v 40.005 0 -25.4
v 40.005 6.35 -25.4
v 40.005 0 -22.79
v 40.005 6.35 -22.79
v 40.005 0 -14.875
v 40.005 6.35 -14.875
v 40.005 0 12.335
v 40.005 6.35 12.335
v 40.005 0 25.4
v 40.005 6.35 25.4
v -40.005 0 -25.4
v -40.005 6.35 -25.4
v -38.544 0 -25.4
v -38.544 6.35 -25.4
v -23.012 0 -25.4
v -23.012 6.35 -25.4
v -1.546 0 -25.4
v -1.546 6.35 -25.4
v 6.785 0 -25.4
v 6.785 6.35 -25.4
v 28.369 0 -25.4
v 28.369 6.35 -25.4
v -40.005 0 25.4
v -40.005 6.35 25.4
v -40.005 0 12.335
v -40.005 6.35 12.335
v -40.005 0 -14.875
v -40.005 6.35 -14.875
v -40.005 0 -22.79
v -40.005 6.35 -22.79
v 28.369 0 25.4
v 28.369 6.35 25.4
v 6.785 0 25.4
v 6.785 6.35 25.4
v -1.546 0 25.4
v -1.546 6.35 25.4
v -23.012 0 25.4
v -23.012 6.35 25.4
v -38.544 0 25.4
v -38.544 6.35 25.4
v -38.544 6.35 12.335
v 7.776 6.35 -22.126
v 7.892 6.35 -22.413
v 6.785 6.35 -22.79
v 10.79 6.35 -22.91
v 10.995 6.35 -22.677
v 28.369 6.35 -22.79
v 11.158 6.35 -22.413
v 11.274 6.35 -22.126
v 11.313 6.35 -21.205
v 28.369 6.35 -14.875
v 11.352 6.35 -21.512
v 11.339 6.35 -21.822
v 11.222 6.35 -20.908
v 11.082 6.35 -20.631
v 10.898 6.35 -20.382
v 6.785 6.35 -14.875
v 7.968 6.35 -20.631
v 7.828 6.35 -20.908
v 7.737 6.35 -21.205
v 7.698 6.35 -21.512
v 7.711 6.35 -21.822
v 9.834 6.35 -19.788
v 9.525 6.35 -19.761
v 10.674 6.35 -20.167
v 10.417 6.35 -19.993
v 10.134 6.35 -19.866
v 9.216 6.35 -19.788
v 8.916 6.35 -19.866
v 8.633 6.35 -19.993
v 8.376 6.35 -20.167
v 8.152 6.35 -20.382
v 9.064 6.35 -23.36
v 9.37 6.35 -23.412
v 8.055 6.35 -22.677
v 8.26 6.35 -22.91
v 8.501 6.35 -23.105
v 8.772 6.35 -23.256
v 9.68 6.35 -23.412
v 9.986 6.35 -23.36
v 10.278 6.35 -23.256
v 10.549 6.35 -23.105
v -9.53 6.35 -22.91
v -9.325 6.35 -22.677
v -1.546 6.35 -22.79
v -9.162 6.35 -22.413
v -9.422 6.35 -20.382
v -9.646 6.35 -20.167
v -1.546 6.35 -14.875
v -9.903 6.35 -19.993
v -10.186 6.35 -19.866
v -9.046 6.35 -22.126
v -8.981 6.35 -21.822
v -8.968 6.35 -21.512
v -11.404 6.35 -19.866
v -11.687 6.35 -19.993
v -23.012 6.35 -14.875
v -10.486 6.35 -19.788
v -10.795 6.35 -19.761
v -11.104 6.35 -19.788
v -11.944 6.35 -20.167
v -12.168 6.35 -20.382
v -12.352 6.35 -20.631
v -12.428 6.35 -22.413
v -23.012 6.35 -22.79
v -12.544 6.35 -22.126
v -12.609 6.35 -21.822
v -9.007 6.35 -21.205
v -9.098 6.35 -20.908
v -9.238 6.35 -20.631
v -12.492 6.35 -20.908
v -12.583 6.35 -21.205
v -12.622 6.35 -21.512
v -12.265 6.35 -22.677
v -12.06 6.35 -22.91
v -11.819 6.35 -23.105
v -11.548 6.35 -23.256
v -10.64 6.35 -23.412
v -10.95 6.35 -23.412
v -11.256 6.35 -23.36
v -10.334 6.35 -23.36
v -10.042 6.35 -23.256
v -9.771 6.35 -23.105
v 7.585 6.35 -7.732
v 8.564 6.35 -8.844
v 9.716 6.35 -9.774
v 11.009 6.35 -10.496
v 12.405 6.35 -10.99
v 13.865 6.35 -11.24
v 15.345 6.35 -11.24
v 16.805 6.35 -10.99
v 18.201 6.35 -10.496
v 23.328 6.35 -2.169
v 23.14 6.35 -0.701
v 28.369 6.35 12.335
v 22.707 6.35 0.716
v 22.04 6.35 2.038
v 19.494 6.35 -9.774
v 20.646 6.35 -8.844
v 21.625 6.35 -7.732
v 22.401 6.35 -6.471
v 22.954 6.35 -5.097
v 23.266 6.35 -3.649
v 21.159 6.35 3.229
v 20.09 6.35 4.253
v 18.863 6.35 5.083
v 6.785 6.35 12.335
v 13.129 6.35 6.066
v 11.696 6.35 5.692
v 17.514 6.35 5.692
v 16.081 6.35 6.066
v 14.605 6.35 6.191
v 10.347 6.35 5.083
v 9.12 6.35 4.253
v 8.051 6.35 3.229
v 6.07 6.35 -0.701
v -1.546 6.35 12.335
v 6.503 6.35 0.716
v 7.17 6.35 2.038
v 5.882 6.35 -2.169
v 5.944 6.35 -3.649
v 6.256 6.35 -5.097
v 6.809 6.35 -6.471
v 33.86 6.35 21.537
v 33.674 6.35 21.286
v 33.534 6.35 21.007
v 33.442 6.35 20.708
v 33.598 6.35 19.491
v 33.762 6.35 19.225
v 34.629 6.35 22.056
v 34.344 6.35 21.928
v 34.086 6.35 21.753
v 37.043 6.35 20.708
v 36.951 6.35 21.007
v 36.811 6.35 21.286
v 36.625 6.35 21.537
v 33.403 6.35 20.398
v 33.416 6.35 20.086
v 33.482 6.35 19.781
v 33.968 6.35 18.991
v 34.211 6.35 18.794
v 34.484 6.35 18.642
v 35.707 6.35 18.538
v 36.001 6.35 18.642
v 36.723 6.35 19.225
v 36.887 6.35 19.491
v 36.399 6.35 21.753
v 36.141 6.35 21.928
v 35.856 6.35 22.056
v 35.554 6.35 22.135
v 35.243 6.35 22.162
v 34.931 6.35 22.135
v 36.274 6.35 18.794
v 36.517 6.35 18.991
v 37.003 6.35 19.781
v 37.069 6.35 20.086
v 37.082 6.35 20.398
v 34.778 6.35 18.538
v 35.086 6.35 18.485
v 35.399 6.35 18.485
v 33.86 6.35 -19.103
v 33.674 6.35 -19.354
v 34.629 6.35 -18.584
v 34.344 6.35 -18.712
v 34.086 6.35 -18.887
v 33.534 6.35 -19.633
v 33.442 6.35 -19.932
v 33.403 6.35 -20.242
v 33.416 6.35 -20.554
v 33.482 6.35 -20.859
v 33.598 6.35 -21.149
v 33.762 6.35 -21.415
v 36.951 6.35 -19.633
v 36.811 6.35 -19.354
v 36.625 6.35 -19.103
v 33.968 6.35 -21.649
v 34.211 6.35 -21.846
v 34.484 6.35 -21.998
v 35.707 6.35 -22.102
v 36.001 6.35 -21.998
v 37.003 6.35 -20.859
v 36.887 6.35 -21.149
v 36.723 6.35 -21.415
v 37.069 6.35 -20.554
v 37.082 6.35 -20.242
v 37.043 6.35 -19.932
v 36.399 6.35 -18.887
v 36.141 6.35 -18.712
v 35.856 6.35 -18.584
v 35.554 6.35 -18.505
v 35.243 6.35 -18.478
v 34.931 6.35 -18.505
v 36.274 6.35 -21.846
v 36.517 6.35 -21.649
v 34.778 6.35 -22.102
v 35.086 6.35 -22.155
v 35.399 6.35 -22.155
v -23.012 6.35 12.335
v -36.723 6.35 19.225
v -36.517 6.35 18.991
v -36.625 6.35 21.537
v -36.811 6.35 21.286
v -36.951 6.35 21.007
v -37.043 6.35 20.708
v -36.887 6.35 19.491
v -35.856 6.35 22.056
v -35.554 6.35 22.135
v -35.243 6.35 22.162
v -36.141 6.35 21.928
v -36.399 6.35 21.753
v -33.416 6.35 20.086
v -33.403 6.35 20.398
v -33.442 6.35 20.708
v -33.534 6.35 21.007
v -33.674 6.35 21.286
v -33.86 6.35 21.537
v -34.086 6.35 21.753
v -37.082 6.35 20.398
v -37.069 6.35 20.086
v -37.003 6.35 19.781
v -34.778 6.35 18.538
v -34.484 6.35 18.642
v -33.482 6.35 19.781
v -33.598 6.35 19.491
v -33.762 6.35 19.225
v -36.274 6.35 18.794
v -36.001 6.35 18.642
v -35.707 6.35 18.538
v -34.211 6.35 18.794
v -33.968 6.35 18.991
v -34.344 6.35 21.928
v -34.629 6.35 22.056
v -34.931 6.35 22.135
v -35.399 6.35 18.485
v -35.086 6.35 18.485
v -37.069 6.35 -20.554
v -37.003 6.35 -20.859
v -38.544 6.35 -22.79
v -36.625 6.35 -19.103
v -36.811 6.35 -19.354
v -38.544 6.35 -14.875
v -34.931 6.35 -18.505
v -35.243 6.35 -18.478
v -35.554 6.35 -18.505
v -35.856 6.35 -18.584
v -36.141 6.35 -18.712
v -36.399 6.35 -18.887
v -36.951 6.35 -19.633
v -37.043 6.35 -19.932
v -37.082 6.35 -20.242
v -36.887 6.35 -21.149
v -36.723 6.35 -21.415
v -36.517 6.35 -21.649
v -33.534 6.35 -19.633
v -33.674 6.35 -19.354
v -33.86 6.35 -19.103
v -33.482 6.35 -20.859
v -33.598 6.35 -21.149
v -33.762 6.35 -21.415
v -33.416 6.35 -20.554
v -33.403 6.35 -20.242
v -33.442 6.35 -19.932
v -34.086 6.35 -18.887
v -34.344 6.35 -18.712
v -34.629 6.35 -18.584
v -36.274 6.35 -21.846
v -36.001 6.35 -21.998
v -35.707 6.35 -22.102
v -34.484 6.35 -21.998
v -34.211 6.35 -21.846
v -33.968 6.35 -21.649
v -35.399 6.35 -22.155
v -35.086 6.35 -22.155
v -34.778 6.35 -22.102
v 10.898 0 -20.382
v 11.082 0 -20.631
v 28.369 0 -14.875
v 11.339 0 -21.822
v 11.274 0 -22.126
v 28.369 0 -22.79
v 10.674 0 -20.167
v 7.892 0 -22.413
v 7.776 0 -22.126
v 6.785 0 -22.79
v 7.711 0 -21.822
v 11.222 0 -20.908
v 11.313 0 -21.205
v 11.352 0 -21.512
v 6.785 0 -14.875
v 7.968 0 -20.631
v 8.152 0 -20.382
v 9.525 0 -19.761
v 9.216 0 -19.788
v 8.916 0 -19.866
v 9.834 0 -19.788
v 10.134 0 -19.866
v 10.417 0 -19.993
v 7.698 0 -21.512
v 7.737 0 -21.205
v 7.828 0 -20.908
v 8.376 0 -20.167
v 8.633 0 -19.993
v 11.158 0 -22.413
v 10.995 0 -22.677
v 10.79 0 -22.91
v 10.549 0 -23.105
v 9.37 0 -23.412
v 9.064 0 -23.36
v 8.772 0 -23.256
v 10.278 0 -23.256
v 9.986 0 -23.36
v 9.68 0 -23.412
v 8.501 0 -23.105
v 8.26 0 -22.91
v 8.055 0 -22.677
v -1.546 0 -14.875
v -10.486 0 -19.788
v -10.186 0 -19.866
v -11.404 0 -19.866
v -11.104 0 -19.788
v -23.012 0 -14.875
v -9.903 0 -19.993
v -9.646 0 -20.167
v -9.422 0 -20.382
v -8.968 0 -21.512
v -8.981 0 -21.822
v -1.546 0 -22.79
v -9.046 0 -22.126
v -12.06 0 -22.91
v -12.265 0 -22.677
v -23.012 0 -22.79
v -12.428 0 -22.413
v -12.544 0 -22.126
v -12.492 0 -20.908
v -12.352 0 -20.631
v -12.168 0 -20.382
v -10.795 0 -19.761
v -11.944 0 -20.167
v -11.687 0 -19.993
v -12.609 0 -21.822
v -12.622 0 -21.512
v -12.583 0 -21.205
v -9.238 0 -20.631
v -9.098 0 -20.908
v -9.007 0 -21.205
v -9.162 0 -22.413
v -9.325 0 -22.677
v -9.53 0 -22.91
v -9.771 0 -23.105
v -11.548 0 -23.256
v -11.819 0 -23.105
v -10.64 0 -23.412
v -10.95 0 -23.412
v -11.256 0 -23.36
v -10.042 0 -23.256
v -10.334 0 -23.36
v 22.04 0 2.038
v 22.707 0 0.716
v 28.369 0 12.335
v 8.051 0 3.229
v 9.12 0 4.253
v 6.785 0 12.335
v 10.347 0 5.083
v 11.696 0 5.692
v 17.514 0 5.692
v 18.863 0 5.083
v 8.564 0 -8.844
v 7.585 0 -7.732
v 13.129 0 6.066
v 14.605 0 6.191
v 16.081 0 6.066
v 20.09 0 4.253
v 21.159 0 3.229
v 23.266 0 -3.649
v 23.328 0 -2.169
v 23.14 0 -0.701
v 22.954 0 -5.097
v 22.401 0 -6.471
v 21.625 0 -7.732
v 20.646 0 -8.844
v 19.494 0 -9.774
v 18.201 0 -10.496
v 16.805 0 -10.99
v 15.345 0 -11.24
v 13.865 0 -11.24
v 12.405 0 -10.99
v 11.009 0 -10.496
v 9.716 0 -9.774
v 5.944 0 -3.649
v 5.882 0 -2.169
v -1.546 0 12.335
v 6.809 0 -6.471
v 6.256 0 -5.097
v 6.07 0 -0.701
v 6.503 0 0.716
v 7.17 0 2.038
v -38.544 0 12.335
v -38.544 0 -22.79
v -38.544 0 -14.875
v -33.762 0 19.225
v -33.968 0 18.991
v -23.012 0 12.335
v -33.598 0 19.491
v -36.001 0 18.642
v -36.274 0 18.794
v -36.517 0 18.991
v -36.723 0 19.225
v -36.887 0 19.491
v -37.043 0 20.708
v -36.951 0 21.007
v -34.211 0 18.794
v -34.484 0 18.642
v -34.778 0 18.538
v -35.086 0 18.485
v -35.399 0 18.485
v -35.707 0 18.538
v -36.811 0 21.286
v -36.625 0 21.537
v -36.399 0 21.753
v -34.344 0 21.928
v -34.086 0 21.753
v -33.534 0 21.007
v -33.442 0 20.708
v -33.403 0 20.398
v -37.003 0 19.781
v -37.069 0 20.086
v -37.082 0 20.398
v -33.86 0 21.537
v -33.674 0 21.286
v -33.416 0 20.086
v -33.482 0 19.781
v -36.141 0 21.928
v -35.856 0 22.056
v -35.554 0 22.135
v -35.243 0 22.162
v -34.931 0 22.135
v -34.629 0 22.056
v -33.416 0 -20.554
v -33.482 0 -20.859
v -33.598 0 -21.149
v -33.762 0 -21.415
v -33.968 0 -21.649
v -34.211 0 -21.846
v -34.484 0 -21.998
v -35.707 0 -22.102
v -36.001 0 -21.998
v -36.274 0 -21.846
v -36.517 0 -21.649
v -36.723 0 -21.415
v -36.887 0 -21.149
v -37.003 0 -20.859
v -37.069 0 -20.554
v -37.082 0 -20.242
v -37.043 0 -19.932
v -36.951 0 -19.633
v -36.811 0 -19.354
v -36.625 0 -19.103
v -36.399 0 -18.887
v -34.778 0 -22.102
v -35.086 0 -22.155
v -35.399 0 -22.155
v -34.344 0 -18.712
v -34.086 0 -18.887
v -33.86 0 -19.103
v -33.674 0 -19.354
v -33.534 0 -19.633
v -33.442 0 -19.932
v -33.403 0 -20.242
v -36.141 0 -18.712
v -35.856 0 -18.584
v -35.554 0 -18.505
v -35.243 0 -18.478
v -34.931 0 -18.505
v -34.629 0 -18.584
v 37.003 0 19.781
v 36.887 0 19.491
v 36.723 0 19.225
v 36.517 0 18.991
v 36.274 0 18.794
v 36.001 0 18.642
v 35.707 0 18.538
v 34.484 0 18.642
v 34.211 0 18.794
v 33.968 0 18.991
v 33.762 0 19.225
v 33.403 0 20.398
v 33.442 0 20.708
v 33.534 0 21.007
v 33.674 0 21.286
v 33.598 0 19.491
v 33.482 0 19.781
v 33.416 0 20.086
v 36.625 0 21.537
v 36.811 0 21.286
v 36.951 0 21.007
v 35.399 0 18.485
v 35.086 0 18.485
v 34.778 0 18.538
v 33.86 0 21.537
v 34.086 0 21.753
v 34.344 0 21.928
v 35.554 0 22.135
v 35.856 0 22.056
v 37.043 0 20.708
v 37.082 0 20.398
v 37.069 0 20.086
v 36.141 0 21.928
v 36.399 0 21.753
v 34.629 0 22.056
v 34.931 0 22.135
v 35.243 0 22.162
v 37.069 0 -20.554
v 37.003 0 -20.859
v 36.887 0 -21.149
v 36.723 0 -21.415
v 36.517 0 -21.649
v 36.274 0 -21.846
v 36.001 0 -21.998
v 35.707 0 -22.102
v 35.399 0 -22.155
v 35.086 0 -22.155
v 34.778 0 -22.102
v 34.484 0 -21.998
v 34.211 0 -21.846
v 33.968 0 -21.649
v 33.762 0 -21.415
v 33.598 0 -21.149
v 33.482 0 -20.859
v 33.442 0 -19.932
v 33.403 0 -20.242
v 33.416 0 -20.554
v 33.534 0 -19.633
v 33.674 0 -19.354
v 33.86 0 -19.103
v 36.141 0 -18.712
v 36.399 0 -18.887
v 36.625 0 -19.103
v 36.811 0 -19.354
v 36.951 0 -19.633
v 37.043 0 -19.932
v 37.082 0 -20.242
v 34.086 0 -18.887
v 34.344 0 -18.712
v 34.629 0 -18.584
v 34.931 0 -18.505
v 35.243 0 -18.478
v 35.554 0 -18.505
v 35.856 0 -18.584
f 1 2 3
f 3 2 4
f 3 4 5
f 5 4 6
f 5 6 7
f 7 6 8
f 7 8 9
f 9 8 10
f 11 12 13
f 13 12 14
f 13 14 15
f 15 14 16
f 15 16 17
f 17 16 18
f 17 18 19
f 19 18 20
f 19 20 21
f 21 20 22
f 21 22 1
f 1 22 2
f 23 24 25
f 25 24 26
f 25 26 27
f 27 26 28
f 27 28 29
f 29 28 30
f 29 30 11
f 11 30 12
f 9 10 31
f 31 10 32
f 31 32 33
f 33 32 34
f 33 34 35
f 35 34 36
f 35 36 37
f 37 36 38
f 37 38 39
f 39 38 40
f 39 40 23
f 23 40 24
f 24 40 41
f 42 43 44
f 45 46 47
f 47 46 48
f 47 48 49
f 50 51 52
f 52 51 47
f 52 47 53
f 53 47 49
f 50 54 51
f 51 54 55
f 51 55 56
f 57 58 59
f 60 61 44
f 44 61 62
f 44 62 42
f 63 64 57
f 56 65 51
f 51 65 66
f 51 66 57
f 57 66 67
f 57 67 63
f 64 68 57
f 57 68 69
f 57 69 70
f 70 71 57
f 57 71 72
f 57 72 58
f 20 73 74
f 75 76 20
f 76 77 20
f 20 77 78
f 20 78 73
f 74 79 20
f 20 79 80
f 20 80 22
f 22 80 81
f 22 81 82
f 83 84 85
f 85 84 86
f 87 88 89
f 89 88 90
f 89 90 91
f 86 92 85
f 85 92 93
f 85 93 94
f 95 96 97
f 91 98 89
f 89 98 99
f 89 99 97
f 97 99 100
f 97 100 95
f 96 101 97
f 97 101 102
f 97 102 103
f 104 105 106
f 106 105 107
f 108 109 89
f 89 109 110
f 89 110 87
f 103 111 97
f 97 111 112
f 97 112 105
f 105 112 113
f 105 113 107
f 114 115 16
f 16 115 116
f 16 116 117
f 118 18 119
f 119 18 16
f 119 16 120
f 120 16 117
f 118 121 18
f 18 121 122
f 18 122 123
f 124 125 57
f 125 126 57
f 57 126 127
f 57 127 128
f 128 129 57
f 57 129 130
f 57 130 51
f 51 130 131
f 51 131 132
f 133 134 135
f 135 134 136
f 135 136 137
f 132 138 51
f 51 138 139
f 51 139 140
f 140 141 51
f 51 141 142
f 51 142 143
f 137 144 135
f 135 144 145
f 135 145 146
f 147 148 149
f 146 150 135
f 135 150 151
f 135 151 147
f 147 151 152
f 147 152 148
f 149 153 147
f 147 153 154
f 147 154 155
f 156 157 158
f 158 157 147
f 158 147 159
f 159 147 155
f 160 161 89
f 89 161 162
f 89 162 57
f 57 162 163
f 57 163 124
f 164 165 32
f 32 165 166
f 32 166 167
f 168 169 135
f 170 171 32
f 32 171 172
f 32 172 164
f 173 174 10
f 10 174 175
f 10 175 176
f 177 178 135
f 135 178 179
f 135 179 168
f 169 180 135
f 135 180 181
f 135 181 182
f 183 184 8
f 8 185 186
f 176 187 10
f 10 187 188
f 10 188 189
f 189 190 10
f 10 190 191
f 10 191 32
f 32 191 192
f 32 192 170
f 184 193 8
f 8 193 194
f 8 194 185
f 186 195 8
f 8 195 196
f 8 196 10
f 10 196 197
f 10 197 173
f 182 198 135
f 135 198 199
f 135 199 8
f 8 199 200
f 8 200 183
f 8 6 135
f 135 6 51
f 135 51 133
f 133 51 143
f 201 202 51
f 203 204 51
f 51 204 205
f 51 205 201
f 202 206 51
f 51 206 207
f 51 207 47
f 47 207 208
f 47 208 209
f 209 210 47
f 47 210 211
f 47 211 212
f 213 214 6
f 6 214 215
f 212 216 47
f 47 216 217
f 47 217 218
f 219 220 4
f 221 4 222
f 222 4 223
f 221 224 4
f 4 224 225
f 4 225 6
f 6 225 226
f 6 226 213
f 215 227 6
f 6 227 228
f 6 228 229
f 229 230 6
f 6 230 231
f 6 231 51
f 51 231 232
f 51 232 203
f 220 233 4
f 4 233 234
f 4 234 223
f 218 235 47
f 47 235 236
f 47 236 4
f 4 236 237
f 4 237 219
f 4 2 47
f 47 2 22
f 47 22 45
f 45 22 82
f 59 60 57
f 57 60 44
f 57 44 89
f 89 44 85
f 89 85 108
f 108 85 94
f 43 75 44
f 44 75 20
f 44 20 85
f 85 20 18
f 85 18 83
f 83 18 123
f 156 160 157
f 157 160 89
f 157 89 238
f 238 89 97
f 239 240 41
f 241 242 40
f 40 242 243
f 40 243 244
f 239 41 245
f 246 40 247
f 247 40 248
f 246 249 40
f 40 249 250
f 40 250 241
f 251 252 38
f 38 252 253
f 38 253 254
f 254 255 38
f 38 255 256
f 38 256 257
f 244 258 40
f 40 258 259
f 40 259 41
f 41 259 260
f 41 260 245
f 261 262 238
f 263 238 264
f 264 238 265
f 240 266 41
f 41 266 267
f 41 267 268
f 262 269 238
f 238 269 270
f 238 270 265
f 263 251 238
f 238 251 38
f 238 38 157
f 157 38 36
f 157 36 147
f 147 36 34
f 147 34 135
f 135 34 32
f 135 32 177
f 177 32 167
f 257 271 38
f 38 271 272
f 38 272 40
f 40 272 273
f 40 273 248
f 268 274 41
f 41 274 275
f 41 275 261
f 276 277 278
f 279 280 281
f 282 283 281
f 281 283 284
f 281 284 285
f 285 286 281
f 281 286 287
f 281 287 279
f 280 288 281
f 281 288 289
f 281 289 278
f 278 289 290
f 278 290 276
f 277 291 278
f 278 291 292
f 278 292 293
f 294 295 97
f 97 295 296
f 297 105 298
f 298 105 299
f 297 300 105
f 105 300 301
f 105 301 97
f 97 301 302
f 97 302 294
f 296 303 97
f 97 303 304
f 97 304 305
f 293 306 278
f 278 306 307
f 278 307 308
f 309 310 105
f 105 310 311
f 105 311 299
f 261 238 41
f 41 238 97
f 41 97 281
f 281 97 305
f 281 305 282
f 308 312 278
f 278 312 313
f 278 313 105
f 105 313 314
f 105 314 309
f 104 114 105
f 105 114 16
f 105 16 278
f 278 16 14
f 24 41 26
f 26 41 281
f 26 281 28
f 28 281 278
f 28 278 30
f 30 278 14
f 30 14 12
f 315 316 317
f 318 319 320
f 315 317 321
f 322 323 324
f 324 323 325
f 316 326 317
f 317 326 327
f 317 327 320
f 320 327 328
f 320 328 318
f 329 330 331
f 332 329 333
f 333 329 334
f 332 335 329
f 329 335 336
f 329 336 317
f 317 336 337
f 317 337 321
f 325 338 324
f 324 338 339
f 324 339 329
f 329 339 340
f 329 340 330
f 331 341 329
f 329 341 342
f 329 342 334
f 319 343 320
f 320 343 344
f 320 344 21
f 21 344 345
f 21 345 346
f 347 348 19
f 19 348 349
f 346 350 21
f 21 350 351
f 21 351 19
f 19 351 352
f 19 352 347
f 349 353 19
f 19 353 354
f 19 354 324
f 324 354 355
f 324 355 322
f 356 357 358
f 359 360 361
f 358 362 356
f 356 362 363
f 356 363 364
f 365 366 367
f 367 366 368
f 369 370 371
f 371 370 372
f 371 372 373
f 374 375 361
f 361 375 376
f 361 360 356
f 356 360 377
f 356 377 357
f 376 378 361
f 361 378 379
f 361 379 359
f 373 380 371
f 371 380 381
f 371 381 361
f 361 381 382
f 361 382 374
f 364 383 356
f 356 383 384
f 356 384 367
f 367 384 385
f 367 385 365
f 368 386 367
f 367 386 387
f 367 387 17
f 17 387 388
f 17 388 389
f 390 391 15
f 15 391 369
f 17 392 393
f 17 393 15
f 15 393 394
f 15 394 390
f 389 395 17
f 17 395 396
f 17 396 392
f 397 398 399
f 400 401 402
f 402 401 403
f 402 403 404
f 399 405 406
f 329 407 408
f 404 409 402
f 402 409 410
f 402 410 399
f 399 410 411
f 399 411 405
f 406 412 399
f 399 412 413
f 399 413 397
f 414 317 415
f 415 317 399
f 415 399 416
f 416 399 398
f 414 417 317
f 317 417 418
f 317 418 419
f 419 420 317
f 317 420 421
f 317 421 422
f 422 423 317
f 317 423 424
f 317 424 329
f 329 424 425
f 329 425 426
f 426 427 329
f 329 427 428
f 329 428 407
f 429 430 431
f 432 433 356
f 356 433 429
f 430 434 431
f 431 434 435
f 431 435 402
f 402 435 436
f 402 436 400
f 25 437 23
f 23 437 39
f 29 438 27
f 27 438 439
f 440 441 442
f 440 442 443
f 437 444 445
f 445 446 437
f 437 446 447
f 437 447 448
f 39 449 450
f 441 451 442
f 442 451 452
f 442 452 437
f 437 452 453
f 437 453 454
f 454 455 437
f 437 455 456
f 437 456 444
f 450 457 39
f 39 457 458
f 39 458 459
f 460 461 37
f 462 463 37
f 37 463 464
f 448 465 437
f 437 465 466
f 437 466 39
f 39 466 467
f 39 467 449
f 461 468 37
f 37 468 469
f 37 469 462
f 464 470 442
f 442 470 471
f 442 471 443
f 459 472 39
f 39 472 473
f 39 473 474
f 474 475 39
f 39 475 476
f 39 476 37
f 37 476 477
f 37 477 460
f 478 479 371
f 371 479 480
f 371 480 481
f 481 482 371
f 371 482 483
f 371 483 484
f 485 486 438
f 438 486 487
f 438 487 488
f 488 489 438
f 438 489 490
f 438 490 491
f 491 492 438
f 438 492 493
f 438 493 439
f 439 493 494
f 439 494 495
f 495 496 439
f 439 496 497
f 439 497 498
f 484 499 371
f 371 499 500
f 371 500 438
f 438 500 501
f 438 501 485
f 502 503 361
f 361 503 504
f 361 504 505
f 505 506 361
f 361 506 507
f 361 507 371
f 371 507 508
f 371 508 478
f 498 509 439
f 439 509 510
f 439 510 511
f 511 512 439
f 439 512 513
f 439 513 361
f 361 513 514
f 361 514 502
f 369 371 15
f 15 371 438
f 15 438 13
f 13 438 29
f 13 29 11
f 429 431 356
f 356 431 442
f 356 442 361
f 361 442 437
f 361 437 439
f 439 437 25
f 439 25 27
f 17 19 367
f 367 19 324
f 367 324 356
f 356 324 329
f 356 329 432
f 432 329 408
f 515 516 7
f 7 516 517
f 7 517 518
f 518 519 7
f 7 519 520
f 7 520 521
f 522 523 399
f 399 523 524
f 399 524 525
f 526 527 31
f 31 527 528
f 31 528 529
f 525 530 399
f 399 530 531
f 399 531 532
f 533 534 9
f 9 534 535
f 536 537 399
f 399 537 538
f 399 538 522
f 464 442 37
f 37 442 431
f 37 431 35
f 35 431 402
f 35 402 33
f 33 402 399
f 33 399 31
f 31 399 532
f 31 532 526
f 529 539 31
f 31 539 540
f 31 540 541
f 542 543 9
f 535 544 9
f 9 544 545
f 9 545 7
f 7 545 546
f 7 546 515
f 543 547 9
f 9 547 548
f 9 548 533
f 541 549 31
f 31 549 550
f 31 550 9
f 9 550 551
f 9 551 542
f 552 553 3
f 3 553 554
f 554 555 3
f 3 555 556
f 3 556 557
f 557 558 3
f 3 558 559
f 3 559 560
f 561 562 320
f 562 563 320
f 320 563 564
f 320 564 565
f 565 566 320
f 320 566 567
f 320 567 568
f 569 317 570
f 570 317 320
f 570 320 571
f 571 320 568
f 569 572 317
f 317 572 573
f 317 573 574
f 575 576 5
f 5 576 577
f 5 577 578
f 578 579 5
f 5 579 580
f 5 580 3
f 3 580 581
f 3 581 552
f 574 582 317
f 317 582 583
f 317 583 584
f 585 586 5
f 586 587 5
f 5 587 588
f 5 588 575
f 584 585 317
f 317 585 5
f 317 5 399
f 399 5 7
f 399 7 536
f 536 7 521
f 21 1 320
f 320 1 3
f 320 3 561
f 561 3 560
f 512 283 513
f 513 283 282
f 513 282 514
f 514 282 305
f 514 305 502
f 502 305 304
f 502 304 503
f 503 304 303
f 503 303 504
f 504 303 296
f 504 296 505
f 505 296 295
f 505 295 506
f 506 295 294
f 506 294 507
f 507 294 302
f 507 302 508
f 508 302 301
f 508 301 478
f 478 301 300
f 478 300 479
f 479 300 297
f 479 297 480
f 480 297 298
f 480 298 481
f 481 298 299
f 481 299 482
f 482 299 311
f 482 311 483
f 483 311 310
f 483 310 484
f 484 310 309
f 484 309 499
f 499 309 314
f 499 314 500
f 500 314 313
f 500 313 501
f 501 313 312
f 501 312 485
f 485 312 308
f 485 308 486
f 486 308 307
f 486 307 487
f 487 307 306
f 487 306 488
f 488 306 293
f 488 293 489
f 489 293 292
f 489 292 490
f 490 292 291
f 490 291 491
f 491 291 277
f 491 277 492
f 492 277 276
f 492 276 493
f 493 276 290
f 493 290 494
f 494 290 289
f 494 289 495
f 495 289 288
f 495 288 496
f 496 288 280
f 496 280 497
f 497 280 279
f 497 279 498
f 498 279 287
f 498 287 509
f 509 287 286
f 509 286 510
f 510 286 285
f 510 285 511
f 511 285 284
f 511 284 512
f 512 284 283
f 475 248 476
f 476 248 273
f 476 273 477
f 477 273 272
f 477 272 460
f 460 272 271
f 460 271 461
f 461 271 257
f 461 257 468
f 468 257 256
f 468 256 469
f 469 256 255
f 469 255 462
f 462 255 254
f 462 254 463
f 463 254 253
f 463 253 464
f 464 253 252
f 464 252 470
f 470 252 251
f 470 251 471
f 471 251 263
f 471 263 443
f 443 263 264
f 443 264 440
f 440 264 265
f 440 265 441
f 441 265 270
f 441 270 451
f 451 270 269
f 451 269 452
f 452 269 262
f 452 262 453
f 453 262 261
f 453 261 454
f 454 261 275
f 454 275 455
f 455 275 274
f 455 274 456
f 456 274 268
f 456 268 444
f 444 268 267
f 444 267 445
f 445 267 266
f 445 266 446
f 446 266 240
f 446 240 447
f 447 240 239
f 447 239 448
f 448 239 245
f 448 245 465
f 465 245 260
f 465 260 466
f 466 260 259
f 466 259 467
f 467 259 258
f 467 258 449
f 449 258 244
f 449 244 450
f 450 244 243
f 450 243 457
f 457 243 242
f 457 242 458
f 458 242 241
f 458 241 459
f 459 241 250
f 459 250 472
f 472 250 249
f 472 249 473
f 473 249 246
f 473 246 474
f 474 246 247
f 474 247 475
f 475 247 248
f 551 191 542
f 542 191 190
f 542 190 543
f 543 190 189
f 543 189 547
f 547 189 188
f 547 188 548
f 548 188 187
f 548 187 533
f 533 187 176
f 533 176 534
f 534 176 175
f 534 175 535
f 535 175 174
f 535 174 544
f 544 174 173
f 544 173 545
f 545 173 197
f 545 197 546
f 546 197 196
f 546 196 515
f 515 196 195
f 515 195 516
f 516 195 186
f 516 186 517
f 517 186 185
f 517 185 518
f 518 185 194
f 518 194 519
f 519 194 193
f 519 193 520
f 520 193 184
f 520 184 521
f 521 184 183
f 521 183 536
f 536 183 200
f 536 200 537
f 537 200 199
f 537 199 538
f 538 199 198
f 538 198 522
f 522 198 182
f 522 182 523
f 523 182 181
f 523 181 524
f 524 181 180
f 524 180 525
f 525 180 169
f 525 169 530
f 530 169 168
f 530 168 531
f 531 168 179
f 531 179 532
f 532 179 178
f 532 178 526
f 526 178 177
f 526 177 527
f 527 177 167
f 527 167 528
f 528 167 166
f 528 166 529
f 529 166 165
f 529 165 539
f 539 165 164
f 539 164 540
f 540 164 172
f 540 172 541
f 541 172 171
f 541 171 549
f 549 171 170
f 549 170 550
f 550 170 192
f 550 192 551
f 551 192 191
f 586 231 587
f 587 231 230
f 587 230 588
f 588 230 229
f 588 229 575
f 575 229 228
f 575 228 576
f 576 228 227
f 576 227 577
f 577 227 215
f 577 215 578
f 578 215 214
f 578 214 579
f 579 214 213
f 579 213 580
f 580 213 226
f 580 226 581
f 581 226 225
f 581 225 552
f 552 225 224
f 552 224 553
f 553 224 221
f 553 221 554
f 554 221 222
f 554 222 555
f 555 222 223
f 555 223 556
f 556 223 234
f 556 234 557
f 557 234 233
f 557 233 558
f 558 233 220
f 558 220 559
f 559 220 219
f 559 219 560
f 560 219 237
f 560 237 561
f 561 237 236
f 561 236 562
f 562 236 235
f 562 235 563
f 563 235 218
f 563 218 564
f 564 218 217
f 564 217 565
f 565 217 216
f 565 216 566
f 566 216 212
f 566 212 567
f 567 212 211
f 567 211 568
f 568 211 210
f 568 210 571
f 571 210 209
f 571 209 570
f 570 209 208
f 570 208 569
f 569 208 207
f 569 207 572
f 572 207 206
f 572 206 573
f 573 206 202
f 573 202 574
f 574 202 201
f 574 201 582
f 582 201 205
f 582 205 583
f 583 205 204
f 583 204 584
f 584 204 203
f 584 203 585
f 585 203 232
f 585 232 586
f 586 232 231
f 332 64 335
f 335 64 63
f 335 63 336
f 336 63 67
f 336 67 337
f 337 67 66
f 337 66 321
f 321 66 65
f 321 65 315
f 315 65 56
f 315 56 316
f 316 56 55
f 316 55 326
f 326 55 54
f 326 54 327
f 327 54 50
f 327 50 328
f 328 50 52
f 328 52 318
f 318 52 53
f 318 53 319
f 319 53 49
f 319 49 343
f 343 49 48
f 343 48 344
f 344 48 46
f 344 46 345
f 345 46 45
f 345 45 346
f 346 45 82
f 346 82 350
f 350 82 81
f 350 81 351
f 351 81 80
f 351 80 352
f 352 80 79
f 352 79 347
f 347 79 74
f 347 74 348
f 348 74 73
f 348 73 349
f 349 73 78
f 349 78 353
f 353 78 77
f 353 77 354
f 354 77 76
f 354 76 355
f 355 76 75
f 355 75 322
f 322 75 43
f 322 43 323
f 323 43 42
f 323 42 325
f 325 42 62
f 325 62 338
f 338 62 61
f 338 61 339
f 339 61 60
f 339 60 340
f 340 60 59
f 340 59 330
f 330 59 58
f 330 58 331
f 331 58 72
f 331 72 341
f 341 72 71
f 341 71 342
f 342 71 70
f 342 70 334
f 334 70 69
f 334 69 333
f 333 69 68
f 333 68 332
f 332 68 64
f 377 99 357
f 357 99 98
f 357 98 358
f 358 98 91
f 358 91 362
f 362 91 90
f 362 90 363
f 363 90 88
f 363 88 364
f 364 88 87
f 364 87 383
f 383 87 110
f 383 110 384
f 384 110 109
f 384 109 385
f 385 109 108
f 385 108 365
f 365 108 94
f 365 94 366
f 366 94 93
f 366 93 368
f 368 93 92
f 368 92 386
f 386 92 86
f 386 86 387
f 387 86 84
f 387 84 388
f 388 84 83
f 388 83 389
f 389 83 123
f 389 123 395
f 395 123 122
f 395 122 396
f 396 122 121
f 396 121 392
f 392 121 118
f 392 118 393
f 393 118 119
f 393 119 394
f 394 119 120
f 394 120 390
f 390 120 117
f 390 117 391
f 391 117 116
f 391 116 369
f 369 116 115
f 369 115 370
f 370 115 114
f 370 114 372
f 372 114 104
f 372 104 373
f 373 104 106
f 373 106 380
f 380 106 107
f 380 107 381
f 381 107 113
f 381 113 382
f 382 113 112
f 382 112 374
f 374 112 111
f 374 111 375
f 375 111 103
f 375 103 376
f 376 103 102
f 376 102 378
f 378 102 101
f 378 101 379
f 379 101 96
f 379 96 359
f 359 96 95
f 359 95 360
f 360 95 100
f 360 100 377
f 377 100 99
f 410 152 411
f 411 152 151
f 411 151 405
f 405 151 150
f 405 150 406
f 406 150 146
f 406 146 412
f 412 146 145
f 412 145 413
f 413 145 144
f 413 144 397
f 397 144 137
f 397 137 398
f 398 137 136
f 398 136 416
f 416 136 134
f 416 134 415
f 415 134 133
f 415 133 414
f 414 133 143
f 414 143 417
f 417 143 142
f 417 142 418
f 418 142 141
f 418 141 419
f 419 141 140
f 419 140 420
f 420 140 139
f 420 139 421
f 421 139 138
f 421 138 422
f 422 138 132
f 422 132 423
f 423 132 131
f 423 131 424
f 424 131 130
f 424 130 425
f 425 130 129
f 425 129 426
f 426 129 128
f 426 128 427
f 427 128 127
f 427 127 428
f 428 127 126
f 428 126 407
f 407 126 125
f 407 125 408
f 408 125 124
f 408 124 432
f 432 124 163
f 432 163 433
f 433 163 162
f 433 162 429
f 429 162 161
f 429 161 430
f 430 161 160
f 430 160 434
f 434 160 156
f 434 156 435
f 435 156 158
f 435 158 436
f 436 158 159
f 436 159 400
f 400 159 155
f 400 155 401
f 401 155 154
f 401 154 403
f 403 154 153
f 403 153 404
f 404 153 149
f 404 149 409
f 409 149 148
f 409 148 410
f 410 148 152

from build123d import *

# Parameters (mm, degrees)
SKETCH1_W           = 80.01
SKETCH1_H           = 50.8
BOSS_EXTRUDE1_DEPTH = 6.35
SKETCH2_R           = 1.8415
CUT_EXTRUDE1_DEPTH  = 48.81090383
SKETCH3_R           = 8.73125
SKETCH3_R_2         = 1.8288
CUT_EXTRUDE2_DEPTH  = 48.81090383


with BuildPart() as part:
    # Sketch1 → Boss-Extrude1 (new body)
    with BuildSketch(Plane(origin=(0, 0, 0), x_dir=(1, 0, 0), z_dir=(0, 1, 0))):
        Rectangle(SKETCH1_W, SKETCH1_H)
    extrude(amount=BOSS_EXTRUDE1_DEPTH)

    # Sketch2 → Cut-Extrude1 (cut, through all)
    with BuildSketch(Plane(origin=(0, 6.35, 0), x_dir=(1, 0, 0), z_dir=(0, 1, 0))):
        with Locations(Location((-35.2425, 20.32, 0), (0, 0, 270))):
            Circle(SKETCH2_R)
        with Locations(Location((-35.2425, -20.32, 0), (0, 0, 270))):
            Circle(SKETCH2_R)
        with Locations(Location((35.2425, -20.32, 0), (0, 0, 270))):
            Circle(SKETCH2_R)
        with Locations(Location((35.2425, 20.32, 0), (0, 0, 270))):
            Circle(SKETCH2_R)
    extrude(amount=-CUT_EXTRUDE1_DEPTH, mode=Mode.SUBTRACT)

    # Sketch3 → Cut-Extrude2 (cut, through all)
    with BuildSketch(Plane(origin=(0, 6.35, 0), x_dir=(1, 0, 0), z_dir=(0, 1, 0))):
        with Locations(Location((14.605, 2.54, 0), (0, 0, 270))):
            Circle(SKETCH3_R)
        with Locations(Location((-10.795, 21.59, 0), (0, 0, 270))):
            Circle(SKETCH3_R_2)
        with Locations(Location((9.525, 21.59, 0), (0, 0, 270))):
            Circle(SKETCH3_R_2)
    extrude(amount=-CUT_EXTRUDE2_DEPTH, mode=Mode.SUBTRACT)


solid = part.part
